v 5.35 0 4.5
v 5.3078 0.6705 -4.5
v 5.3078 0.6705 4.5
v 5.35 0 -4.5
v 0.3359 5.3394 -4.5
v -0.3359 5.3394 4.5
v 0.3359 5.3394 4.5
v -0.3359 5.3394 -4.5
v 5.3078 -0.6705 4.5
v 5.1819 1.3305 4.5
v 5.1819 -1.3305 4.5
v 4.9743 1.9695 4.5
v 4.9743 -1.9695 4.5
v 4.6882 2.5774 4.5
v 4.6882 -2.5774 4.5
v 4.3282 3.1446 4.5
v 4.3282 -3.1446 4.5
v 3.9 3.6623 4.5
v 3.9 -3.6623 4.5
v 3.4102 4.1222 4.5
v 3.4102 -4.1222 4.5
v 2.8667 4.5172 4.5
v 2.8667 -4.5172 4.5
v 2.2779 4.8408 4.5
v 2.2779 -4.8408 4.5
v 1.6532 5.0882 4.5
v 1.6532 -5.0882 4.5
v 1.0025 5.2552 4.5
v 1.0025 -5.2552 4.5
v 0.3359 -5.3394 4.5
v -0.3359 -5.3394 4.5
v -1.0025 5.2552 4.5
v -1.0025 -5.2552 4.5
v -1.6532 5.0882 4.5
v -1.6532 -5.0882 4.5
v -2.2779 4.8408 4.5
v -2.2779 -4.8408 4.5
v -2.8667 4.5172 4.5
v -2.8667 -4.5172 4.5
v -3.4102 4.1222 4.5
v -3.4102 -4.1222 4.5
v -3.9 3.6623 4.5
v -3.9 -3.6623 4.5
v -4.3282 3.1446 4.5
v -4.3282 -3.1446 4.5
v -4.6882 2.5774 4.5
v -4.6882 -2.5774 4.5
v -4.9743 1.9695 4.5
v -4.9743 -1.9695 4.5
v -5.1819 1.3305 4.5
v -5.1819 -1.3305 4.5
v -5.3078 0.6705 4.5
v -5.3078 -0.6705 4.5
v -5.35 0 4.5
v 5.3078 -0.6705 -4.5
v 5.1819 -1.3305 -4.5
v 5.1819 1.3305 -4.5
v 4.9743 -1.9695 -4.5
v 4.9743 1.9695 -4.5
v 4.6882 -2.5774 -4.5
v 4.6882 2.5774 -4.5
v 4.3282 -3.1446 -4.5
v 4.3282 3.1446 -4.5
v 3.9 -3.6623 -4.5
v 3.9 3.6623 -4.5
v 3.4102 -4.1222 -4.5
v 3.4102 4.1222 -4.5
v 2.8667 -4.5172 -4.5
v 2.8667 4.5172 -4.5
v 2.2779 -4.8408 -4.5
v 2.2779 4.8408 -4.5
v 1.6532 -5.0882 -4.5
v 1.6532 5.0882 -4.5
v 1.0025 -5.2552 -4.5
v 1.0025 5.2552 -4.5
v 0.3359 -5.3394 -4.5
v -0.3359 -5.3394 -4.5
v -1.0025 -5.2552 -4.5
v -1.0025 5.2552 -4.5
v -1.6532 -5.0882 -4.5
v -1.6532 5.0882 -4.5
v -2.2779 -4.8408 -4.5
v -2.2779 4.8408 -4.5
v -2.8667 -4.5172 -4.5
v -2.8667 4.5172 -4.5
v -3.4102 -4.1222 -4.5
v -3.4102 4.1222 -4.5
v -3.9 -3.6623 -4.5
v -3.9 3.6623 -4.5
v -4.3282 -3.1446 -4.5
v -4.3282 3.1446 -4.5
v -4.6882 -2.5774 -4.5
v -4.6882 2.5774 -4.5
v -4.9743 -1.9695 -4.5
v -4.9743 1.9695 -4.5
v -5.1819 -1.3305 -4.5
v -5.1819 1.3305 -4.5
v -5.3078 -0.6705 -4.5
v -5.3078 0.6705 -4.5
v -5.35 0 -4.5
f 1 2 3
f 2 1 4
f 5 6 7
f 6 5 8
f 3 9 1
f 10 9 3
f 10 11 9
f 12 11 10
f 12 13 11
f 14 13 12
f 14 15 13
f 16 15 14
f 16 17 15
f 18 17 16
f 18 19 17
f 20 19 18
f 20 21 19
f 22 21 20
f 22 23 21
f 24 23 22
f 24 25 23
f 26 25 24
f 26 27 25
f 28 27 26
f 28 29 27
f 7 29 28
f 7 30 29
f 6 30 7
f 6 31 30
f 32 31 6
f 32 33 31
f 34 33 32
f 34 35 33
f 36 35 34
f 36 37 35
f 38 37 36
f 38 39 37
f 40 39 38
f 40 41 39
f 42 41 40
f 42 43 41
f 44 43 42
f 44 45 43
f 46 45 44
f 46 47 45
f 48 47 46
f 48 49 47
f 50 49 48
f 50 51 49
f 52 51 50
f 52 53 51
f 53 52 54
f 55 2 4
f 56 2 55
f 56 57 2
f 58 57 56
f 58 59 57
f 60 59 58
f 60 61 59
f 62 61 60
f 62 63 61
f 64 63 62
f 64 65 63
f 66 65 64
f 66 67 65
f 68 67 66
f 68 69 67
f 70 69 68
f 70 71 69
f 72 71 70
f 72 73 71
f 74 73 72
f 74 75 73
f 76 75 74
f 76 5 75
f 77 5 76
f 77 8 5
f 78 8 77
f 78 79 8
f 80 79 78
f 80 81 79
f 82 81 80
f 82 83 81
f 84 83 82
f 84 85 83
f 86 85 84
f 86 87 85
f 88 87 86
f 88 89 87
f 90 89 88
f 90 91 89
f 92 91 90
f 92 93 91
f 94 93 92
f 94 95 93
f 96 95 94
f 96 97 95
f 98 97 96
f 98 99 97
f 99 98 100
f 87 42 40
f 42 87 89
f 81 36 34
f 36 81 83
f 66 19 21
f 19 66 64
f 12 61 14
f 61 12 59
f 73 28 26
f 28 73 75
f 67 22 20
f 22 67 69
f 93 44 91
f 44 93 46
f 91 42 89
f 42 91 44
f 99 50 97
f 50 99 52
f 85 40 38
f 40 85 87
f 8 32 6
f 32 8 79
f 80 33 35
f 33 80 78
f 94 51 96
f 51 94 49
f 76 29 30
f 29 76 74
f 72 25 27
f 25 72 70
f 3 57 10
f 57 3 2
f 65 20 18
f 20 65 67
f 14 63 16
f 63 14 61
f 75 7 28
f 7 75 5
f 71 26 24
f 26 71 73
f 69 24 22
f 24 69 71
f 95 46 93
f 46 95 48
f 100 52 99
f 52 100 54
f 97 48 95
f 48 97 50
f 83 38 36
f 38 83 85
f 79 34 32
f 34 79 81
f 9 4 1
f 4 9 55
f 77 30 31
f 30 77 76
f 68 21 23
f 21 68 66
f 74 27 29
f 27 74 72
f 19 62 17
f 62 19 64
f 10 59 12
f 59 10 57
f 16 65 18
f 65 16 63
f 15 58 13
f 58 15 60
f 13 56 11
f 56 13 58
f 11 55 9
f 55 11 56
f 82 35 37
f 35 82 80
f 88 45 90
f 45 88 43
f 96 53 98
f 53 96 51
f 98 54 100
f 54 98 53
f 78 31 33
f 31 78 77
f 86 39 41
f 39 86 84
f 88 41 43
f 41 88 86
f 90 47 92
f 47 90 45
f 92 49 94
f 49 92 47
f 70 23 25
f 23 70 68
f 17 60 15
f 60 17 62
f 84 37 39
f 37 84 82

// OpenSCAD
$fn = 50;


difference() {
	union() {
		translate(v = [0, 0, -4.5000000000]) {
			cylinder(h = 9, r = 5.3500000000);
		}
	}
	union() {
		translate(v = [0, 0, -100.0000000000]) {
			cylinder(h = 200, r = 0);
		}
	}
}
